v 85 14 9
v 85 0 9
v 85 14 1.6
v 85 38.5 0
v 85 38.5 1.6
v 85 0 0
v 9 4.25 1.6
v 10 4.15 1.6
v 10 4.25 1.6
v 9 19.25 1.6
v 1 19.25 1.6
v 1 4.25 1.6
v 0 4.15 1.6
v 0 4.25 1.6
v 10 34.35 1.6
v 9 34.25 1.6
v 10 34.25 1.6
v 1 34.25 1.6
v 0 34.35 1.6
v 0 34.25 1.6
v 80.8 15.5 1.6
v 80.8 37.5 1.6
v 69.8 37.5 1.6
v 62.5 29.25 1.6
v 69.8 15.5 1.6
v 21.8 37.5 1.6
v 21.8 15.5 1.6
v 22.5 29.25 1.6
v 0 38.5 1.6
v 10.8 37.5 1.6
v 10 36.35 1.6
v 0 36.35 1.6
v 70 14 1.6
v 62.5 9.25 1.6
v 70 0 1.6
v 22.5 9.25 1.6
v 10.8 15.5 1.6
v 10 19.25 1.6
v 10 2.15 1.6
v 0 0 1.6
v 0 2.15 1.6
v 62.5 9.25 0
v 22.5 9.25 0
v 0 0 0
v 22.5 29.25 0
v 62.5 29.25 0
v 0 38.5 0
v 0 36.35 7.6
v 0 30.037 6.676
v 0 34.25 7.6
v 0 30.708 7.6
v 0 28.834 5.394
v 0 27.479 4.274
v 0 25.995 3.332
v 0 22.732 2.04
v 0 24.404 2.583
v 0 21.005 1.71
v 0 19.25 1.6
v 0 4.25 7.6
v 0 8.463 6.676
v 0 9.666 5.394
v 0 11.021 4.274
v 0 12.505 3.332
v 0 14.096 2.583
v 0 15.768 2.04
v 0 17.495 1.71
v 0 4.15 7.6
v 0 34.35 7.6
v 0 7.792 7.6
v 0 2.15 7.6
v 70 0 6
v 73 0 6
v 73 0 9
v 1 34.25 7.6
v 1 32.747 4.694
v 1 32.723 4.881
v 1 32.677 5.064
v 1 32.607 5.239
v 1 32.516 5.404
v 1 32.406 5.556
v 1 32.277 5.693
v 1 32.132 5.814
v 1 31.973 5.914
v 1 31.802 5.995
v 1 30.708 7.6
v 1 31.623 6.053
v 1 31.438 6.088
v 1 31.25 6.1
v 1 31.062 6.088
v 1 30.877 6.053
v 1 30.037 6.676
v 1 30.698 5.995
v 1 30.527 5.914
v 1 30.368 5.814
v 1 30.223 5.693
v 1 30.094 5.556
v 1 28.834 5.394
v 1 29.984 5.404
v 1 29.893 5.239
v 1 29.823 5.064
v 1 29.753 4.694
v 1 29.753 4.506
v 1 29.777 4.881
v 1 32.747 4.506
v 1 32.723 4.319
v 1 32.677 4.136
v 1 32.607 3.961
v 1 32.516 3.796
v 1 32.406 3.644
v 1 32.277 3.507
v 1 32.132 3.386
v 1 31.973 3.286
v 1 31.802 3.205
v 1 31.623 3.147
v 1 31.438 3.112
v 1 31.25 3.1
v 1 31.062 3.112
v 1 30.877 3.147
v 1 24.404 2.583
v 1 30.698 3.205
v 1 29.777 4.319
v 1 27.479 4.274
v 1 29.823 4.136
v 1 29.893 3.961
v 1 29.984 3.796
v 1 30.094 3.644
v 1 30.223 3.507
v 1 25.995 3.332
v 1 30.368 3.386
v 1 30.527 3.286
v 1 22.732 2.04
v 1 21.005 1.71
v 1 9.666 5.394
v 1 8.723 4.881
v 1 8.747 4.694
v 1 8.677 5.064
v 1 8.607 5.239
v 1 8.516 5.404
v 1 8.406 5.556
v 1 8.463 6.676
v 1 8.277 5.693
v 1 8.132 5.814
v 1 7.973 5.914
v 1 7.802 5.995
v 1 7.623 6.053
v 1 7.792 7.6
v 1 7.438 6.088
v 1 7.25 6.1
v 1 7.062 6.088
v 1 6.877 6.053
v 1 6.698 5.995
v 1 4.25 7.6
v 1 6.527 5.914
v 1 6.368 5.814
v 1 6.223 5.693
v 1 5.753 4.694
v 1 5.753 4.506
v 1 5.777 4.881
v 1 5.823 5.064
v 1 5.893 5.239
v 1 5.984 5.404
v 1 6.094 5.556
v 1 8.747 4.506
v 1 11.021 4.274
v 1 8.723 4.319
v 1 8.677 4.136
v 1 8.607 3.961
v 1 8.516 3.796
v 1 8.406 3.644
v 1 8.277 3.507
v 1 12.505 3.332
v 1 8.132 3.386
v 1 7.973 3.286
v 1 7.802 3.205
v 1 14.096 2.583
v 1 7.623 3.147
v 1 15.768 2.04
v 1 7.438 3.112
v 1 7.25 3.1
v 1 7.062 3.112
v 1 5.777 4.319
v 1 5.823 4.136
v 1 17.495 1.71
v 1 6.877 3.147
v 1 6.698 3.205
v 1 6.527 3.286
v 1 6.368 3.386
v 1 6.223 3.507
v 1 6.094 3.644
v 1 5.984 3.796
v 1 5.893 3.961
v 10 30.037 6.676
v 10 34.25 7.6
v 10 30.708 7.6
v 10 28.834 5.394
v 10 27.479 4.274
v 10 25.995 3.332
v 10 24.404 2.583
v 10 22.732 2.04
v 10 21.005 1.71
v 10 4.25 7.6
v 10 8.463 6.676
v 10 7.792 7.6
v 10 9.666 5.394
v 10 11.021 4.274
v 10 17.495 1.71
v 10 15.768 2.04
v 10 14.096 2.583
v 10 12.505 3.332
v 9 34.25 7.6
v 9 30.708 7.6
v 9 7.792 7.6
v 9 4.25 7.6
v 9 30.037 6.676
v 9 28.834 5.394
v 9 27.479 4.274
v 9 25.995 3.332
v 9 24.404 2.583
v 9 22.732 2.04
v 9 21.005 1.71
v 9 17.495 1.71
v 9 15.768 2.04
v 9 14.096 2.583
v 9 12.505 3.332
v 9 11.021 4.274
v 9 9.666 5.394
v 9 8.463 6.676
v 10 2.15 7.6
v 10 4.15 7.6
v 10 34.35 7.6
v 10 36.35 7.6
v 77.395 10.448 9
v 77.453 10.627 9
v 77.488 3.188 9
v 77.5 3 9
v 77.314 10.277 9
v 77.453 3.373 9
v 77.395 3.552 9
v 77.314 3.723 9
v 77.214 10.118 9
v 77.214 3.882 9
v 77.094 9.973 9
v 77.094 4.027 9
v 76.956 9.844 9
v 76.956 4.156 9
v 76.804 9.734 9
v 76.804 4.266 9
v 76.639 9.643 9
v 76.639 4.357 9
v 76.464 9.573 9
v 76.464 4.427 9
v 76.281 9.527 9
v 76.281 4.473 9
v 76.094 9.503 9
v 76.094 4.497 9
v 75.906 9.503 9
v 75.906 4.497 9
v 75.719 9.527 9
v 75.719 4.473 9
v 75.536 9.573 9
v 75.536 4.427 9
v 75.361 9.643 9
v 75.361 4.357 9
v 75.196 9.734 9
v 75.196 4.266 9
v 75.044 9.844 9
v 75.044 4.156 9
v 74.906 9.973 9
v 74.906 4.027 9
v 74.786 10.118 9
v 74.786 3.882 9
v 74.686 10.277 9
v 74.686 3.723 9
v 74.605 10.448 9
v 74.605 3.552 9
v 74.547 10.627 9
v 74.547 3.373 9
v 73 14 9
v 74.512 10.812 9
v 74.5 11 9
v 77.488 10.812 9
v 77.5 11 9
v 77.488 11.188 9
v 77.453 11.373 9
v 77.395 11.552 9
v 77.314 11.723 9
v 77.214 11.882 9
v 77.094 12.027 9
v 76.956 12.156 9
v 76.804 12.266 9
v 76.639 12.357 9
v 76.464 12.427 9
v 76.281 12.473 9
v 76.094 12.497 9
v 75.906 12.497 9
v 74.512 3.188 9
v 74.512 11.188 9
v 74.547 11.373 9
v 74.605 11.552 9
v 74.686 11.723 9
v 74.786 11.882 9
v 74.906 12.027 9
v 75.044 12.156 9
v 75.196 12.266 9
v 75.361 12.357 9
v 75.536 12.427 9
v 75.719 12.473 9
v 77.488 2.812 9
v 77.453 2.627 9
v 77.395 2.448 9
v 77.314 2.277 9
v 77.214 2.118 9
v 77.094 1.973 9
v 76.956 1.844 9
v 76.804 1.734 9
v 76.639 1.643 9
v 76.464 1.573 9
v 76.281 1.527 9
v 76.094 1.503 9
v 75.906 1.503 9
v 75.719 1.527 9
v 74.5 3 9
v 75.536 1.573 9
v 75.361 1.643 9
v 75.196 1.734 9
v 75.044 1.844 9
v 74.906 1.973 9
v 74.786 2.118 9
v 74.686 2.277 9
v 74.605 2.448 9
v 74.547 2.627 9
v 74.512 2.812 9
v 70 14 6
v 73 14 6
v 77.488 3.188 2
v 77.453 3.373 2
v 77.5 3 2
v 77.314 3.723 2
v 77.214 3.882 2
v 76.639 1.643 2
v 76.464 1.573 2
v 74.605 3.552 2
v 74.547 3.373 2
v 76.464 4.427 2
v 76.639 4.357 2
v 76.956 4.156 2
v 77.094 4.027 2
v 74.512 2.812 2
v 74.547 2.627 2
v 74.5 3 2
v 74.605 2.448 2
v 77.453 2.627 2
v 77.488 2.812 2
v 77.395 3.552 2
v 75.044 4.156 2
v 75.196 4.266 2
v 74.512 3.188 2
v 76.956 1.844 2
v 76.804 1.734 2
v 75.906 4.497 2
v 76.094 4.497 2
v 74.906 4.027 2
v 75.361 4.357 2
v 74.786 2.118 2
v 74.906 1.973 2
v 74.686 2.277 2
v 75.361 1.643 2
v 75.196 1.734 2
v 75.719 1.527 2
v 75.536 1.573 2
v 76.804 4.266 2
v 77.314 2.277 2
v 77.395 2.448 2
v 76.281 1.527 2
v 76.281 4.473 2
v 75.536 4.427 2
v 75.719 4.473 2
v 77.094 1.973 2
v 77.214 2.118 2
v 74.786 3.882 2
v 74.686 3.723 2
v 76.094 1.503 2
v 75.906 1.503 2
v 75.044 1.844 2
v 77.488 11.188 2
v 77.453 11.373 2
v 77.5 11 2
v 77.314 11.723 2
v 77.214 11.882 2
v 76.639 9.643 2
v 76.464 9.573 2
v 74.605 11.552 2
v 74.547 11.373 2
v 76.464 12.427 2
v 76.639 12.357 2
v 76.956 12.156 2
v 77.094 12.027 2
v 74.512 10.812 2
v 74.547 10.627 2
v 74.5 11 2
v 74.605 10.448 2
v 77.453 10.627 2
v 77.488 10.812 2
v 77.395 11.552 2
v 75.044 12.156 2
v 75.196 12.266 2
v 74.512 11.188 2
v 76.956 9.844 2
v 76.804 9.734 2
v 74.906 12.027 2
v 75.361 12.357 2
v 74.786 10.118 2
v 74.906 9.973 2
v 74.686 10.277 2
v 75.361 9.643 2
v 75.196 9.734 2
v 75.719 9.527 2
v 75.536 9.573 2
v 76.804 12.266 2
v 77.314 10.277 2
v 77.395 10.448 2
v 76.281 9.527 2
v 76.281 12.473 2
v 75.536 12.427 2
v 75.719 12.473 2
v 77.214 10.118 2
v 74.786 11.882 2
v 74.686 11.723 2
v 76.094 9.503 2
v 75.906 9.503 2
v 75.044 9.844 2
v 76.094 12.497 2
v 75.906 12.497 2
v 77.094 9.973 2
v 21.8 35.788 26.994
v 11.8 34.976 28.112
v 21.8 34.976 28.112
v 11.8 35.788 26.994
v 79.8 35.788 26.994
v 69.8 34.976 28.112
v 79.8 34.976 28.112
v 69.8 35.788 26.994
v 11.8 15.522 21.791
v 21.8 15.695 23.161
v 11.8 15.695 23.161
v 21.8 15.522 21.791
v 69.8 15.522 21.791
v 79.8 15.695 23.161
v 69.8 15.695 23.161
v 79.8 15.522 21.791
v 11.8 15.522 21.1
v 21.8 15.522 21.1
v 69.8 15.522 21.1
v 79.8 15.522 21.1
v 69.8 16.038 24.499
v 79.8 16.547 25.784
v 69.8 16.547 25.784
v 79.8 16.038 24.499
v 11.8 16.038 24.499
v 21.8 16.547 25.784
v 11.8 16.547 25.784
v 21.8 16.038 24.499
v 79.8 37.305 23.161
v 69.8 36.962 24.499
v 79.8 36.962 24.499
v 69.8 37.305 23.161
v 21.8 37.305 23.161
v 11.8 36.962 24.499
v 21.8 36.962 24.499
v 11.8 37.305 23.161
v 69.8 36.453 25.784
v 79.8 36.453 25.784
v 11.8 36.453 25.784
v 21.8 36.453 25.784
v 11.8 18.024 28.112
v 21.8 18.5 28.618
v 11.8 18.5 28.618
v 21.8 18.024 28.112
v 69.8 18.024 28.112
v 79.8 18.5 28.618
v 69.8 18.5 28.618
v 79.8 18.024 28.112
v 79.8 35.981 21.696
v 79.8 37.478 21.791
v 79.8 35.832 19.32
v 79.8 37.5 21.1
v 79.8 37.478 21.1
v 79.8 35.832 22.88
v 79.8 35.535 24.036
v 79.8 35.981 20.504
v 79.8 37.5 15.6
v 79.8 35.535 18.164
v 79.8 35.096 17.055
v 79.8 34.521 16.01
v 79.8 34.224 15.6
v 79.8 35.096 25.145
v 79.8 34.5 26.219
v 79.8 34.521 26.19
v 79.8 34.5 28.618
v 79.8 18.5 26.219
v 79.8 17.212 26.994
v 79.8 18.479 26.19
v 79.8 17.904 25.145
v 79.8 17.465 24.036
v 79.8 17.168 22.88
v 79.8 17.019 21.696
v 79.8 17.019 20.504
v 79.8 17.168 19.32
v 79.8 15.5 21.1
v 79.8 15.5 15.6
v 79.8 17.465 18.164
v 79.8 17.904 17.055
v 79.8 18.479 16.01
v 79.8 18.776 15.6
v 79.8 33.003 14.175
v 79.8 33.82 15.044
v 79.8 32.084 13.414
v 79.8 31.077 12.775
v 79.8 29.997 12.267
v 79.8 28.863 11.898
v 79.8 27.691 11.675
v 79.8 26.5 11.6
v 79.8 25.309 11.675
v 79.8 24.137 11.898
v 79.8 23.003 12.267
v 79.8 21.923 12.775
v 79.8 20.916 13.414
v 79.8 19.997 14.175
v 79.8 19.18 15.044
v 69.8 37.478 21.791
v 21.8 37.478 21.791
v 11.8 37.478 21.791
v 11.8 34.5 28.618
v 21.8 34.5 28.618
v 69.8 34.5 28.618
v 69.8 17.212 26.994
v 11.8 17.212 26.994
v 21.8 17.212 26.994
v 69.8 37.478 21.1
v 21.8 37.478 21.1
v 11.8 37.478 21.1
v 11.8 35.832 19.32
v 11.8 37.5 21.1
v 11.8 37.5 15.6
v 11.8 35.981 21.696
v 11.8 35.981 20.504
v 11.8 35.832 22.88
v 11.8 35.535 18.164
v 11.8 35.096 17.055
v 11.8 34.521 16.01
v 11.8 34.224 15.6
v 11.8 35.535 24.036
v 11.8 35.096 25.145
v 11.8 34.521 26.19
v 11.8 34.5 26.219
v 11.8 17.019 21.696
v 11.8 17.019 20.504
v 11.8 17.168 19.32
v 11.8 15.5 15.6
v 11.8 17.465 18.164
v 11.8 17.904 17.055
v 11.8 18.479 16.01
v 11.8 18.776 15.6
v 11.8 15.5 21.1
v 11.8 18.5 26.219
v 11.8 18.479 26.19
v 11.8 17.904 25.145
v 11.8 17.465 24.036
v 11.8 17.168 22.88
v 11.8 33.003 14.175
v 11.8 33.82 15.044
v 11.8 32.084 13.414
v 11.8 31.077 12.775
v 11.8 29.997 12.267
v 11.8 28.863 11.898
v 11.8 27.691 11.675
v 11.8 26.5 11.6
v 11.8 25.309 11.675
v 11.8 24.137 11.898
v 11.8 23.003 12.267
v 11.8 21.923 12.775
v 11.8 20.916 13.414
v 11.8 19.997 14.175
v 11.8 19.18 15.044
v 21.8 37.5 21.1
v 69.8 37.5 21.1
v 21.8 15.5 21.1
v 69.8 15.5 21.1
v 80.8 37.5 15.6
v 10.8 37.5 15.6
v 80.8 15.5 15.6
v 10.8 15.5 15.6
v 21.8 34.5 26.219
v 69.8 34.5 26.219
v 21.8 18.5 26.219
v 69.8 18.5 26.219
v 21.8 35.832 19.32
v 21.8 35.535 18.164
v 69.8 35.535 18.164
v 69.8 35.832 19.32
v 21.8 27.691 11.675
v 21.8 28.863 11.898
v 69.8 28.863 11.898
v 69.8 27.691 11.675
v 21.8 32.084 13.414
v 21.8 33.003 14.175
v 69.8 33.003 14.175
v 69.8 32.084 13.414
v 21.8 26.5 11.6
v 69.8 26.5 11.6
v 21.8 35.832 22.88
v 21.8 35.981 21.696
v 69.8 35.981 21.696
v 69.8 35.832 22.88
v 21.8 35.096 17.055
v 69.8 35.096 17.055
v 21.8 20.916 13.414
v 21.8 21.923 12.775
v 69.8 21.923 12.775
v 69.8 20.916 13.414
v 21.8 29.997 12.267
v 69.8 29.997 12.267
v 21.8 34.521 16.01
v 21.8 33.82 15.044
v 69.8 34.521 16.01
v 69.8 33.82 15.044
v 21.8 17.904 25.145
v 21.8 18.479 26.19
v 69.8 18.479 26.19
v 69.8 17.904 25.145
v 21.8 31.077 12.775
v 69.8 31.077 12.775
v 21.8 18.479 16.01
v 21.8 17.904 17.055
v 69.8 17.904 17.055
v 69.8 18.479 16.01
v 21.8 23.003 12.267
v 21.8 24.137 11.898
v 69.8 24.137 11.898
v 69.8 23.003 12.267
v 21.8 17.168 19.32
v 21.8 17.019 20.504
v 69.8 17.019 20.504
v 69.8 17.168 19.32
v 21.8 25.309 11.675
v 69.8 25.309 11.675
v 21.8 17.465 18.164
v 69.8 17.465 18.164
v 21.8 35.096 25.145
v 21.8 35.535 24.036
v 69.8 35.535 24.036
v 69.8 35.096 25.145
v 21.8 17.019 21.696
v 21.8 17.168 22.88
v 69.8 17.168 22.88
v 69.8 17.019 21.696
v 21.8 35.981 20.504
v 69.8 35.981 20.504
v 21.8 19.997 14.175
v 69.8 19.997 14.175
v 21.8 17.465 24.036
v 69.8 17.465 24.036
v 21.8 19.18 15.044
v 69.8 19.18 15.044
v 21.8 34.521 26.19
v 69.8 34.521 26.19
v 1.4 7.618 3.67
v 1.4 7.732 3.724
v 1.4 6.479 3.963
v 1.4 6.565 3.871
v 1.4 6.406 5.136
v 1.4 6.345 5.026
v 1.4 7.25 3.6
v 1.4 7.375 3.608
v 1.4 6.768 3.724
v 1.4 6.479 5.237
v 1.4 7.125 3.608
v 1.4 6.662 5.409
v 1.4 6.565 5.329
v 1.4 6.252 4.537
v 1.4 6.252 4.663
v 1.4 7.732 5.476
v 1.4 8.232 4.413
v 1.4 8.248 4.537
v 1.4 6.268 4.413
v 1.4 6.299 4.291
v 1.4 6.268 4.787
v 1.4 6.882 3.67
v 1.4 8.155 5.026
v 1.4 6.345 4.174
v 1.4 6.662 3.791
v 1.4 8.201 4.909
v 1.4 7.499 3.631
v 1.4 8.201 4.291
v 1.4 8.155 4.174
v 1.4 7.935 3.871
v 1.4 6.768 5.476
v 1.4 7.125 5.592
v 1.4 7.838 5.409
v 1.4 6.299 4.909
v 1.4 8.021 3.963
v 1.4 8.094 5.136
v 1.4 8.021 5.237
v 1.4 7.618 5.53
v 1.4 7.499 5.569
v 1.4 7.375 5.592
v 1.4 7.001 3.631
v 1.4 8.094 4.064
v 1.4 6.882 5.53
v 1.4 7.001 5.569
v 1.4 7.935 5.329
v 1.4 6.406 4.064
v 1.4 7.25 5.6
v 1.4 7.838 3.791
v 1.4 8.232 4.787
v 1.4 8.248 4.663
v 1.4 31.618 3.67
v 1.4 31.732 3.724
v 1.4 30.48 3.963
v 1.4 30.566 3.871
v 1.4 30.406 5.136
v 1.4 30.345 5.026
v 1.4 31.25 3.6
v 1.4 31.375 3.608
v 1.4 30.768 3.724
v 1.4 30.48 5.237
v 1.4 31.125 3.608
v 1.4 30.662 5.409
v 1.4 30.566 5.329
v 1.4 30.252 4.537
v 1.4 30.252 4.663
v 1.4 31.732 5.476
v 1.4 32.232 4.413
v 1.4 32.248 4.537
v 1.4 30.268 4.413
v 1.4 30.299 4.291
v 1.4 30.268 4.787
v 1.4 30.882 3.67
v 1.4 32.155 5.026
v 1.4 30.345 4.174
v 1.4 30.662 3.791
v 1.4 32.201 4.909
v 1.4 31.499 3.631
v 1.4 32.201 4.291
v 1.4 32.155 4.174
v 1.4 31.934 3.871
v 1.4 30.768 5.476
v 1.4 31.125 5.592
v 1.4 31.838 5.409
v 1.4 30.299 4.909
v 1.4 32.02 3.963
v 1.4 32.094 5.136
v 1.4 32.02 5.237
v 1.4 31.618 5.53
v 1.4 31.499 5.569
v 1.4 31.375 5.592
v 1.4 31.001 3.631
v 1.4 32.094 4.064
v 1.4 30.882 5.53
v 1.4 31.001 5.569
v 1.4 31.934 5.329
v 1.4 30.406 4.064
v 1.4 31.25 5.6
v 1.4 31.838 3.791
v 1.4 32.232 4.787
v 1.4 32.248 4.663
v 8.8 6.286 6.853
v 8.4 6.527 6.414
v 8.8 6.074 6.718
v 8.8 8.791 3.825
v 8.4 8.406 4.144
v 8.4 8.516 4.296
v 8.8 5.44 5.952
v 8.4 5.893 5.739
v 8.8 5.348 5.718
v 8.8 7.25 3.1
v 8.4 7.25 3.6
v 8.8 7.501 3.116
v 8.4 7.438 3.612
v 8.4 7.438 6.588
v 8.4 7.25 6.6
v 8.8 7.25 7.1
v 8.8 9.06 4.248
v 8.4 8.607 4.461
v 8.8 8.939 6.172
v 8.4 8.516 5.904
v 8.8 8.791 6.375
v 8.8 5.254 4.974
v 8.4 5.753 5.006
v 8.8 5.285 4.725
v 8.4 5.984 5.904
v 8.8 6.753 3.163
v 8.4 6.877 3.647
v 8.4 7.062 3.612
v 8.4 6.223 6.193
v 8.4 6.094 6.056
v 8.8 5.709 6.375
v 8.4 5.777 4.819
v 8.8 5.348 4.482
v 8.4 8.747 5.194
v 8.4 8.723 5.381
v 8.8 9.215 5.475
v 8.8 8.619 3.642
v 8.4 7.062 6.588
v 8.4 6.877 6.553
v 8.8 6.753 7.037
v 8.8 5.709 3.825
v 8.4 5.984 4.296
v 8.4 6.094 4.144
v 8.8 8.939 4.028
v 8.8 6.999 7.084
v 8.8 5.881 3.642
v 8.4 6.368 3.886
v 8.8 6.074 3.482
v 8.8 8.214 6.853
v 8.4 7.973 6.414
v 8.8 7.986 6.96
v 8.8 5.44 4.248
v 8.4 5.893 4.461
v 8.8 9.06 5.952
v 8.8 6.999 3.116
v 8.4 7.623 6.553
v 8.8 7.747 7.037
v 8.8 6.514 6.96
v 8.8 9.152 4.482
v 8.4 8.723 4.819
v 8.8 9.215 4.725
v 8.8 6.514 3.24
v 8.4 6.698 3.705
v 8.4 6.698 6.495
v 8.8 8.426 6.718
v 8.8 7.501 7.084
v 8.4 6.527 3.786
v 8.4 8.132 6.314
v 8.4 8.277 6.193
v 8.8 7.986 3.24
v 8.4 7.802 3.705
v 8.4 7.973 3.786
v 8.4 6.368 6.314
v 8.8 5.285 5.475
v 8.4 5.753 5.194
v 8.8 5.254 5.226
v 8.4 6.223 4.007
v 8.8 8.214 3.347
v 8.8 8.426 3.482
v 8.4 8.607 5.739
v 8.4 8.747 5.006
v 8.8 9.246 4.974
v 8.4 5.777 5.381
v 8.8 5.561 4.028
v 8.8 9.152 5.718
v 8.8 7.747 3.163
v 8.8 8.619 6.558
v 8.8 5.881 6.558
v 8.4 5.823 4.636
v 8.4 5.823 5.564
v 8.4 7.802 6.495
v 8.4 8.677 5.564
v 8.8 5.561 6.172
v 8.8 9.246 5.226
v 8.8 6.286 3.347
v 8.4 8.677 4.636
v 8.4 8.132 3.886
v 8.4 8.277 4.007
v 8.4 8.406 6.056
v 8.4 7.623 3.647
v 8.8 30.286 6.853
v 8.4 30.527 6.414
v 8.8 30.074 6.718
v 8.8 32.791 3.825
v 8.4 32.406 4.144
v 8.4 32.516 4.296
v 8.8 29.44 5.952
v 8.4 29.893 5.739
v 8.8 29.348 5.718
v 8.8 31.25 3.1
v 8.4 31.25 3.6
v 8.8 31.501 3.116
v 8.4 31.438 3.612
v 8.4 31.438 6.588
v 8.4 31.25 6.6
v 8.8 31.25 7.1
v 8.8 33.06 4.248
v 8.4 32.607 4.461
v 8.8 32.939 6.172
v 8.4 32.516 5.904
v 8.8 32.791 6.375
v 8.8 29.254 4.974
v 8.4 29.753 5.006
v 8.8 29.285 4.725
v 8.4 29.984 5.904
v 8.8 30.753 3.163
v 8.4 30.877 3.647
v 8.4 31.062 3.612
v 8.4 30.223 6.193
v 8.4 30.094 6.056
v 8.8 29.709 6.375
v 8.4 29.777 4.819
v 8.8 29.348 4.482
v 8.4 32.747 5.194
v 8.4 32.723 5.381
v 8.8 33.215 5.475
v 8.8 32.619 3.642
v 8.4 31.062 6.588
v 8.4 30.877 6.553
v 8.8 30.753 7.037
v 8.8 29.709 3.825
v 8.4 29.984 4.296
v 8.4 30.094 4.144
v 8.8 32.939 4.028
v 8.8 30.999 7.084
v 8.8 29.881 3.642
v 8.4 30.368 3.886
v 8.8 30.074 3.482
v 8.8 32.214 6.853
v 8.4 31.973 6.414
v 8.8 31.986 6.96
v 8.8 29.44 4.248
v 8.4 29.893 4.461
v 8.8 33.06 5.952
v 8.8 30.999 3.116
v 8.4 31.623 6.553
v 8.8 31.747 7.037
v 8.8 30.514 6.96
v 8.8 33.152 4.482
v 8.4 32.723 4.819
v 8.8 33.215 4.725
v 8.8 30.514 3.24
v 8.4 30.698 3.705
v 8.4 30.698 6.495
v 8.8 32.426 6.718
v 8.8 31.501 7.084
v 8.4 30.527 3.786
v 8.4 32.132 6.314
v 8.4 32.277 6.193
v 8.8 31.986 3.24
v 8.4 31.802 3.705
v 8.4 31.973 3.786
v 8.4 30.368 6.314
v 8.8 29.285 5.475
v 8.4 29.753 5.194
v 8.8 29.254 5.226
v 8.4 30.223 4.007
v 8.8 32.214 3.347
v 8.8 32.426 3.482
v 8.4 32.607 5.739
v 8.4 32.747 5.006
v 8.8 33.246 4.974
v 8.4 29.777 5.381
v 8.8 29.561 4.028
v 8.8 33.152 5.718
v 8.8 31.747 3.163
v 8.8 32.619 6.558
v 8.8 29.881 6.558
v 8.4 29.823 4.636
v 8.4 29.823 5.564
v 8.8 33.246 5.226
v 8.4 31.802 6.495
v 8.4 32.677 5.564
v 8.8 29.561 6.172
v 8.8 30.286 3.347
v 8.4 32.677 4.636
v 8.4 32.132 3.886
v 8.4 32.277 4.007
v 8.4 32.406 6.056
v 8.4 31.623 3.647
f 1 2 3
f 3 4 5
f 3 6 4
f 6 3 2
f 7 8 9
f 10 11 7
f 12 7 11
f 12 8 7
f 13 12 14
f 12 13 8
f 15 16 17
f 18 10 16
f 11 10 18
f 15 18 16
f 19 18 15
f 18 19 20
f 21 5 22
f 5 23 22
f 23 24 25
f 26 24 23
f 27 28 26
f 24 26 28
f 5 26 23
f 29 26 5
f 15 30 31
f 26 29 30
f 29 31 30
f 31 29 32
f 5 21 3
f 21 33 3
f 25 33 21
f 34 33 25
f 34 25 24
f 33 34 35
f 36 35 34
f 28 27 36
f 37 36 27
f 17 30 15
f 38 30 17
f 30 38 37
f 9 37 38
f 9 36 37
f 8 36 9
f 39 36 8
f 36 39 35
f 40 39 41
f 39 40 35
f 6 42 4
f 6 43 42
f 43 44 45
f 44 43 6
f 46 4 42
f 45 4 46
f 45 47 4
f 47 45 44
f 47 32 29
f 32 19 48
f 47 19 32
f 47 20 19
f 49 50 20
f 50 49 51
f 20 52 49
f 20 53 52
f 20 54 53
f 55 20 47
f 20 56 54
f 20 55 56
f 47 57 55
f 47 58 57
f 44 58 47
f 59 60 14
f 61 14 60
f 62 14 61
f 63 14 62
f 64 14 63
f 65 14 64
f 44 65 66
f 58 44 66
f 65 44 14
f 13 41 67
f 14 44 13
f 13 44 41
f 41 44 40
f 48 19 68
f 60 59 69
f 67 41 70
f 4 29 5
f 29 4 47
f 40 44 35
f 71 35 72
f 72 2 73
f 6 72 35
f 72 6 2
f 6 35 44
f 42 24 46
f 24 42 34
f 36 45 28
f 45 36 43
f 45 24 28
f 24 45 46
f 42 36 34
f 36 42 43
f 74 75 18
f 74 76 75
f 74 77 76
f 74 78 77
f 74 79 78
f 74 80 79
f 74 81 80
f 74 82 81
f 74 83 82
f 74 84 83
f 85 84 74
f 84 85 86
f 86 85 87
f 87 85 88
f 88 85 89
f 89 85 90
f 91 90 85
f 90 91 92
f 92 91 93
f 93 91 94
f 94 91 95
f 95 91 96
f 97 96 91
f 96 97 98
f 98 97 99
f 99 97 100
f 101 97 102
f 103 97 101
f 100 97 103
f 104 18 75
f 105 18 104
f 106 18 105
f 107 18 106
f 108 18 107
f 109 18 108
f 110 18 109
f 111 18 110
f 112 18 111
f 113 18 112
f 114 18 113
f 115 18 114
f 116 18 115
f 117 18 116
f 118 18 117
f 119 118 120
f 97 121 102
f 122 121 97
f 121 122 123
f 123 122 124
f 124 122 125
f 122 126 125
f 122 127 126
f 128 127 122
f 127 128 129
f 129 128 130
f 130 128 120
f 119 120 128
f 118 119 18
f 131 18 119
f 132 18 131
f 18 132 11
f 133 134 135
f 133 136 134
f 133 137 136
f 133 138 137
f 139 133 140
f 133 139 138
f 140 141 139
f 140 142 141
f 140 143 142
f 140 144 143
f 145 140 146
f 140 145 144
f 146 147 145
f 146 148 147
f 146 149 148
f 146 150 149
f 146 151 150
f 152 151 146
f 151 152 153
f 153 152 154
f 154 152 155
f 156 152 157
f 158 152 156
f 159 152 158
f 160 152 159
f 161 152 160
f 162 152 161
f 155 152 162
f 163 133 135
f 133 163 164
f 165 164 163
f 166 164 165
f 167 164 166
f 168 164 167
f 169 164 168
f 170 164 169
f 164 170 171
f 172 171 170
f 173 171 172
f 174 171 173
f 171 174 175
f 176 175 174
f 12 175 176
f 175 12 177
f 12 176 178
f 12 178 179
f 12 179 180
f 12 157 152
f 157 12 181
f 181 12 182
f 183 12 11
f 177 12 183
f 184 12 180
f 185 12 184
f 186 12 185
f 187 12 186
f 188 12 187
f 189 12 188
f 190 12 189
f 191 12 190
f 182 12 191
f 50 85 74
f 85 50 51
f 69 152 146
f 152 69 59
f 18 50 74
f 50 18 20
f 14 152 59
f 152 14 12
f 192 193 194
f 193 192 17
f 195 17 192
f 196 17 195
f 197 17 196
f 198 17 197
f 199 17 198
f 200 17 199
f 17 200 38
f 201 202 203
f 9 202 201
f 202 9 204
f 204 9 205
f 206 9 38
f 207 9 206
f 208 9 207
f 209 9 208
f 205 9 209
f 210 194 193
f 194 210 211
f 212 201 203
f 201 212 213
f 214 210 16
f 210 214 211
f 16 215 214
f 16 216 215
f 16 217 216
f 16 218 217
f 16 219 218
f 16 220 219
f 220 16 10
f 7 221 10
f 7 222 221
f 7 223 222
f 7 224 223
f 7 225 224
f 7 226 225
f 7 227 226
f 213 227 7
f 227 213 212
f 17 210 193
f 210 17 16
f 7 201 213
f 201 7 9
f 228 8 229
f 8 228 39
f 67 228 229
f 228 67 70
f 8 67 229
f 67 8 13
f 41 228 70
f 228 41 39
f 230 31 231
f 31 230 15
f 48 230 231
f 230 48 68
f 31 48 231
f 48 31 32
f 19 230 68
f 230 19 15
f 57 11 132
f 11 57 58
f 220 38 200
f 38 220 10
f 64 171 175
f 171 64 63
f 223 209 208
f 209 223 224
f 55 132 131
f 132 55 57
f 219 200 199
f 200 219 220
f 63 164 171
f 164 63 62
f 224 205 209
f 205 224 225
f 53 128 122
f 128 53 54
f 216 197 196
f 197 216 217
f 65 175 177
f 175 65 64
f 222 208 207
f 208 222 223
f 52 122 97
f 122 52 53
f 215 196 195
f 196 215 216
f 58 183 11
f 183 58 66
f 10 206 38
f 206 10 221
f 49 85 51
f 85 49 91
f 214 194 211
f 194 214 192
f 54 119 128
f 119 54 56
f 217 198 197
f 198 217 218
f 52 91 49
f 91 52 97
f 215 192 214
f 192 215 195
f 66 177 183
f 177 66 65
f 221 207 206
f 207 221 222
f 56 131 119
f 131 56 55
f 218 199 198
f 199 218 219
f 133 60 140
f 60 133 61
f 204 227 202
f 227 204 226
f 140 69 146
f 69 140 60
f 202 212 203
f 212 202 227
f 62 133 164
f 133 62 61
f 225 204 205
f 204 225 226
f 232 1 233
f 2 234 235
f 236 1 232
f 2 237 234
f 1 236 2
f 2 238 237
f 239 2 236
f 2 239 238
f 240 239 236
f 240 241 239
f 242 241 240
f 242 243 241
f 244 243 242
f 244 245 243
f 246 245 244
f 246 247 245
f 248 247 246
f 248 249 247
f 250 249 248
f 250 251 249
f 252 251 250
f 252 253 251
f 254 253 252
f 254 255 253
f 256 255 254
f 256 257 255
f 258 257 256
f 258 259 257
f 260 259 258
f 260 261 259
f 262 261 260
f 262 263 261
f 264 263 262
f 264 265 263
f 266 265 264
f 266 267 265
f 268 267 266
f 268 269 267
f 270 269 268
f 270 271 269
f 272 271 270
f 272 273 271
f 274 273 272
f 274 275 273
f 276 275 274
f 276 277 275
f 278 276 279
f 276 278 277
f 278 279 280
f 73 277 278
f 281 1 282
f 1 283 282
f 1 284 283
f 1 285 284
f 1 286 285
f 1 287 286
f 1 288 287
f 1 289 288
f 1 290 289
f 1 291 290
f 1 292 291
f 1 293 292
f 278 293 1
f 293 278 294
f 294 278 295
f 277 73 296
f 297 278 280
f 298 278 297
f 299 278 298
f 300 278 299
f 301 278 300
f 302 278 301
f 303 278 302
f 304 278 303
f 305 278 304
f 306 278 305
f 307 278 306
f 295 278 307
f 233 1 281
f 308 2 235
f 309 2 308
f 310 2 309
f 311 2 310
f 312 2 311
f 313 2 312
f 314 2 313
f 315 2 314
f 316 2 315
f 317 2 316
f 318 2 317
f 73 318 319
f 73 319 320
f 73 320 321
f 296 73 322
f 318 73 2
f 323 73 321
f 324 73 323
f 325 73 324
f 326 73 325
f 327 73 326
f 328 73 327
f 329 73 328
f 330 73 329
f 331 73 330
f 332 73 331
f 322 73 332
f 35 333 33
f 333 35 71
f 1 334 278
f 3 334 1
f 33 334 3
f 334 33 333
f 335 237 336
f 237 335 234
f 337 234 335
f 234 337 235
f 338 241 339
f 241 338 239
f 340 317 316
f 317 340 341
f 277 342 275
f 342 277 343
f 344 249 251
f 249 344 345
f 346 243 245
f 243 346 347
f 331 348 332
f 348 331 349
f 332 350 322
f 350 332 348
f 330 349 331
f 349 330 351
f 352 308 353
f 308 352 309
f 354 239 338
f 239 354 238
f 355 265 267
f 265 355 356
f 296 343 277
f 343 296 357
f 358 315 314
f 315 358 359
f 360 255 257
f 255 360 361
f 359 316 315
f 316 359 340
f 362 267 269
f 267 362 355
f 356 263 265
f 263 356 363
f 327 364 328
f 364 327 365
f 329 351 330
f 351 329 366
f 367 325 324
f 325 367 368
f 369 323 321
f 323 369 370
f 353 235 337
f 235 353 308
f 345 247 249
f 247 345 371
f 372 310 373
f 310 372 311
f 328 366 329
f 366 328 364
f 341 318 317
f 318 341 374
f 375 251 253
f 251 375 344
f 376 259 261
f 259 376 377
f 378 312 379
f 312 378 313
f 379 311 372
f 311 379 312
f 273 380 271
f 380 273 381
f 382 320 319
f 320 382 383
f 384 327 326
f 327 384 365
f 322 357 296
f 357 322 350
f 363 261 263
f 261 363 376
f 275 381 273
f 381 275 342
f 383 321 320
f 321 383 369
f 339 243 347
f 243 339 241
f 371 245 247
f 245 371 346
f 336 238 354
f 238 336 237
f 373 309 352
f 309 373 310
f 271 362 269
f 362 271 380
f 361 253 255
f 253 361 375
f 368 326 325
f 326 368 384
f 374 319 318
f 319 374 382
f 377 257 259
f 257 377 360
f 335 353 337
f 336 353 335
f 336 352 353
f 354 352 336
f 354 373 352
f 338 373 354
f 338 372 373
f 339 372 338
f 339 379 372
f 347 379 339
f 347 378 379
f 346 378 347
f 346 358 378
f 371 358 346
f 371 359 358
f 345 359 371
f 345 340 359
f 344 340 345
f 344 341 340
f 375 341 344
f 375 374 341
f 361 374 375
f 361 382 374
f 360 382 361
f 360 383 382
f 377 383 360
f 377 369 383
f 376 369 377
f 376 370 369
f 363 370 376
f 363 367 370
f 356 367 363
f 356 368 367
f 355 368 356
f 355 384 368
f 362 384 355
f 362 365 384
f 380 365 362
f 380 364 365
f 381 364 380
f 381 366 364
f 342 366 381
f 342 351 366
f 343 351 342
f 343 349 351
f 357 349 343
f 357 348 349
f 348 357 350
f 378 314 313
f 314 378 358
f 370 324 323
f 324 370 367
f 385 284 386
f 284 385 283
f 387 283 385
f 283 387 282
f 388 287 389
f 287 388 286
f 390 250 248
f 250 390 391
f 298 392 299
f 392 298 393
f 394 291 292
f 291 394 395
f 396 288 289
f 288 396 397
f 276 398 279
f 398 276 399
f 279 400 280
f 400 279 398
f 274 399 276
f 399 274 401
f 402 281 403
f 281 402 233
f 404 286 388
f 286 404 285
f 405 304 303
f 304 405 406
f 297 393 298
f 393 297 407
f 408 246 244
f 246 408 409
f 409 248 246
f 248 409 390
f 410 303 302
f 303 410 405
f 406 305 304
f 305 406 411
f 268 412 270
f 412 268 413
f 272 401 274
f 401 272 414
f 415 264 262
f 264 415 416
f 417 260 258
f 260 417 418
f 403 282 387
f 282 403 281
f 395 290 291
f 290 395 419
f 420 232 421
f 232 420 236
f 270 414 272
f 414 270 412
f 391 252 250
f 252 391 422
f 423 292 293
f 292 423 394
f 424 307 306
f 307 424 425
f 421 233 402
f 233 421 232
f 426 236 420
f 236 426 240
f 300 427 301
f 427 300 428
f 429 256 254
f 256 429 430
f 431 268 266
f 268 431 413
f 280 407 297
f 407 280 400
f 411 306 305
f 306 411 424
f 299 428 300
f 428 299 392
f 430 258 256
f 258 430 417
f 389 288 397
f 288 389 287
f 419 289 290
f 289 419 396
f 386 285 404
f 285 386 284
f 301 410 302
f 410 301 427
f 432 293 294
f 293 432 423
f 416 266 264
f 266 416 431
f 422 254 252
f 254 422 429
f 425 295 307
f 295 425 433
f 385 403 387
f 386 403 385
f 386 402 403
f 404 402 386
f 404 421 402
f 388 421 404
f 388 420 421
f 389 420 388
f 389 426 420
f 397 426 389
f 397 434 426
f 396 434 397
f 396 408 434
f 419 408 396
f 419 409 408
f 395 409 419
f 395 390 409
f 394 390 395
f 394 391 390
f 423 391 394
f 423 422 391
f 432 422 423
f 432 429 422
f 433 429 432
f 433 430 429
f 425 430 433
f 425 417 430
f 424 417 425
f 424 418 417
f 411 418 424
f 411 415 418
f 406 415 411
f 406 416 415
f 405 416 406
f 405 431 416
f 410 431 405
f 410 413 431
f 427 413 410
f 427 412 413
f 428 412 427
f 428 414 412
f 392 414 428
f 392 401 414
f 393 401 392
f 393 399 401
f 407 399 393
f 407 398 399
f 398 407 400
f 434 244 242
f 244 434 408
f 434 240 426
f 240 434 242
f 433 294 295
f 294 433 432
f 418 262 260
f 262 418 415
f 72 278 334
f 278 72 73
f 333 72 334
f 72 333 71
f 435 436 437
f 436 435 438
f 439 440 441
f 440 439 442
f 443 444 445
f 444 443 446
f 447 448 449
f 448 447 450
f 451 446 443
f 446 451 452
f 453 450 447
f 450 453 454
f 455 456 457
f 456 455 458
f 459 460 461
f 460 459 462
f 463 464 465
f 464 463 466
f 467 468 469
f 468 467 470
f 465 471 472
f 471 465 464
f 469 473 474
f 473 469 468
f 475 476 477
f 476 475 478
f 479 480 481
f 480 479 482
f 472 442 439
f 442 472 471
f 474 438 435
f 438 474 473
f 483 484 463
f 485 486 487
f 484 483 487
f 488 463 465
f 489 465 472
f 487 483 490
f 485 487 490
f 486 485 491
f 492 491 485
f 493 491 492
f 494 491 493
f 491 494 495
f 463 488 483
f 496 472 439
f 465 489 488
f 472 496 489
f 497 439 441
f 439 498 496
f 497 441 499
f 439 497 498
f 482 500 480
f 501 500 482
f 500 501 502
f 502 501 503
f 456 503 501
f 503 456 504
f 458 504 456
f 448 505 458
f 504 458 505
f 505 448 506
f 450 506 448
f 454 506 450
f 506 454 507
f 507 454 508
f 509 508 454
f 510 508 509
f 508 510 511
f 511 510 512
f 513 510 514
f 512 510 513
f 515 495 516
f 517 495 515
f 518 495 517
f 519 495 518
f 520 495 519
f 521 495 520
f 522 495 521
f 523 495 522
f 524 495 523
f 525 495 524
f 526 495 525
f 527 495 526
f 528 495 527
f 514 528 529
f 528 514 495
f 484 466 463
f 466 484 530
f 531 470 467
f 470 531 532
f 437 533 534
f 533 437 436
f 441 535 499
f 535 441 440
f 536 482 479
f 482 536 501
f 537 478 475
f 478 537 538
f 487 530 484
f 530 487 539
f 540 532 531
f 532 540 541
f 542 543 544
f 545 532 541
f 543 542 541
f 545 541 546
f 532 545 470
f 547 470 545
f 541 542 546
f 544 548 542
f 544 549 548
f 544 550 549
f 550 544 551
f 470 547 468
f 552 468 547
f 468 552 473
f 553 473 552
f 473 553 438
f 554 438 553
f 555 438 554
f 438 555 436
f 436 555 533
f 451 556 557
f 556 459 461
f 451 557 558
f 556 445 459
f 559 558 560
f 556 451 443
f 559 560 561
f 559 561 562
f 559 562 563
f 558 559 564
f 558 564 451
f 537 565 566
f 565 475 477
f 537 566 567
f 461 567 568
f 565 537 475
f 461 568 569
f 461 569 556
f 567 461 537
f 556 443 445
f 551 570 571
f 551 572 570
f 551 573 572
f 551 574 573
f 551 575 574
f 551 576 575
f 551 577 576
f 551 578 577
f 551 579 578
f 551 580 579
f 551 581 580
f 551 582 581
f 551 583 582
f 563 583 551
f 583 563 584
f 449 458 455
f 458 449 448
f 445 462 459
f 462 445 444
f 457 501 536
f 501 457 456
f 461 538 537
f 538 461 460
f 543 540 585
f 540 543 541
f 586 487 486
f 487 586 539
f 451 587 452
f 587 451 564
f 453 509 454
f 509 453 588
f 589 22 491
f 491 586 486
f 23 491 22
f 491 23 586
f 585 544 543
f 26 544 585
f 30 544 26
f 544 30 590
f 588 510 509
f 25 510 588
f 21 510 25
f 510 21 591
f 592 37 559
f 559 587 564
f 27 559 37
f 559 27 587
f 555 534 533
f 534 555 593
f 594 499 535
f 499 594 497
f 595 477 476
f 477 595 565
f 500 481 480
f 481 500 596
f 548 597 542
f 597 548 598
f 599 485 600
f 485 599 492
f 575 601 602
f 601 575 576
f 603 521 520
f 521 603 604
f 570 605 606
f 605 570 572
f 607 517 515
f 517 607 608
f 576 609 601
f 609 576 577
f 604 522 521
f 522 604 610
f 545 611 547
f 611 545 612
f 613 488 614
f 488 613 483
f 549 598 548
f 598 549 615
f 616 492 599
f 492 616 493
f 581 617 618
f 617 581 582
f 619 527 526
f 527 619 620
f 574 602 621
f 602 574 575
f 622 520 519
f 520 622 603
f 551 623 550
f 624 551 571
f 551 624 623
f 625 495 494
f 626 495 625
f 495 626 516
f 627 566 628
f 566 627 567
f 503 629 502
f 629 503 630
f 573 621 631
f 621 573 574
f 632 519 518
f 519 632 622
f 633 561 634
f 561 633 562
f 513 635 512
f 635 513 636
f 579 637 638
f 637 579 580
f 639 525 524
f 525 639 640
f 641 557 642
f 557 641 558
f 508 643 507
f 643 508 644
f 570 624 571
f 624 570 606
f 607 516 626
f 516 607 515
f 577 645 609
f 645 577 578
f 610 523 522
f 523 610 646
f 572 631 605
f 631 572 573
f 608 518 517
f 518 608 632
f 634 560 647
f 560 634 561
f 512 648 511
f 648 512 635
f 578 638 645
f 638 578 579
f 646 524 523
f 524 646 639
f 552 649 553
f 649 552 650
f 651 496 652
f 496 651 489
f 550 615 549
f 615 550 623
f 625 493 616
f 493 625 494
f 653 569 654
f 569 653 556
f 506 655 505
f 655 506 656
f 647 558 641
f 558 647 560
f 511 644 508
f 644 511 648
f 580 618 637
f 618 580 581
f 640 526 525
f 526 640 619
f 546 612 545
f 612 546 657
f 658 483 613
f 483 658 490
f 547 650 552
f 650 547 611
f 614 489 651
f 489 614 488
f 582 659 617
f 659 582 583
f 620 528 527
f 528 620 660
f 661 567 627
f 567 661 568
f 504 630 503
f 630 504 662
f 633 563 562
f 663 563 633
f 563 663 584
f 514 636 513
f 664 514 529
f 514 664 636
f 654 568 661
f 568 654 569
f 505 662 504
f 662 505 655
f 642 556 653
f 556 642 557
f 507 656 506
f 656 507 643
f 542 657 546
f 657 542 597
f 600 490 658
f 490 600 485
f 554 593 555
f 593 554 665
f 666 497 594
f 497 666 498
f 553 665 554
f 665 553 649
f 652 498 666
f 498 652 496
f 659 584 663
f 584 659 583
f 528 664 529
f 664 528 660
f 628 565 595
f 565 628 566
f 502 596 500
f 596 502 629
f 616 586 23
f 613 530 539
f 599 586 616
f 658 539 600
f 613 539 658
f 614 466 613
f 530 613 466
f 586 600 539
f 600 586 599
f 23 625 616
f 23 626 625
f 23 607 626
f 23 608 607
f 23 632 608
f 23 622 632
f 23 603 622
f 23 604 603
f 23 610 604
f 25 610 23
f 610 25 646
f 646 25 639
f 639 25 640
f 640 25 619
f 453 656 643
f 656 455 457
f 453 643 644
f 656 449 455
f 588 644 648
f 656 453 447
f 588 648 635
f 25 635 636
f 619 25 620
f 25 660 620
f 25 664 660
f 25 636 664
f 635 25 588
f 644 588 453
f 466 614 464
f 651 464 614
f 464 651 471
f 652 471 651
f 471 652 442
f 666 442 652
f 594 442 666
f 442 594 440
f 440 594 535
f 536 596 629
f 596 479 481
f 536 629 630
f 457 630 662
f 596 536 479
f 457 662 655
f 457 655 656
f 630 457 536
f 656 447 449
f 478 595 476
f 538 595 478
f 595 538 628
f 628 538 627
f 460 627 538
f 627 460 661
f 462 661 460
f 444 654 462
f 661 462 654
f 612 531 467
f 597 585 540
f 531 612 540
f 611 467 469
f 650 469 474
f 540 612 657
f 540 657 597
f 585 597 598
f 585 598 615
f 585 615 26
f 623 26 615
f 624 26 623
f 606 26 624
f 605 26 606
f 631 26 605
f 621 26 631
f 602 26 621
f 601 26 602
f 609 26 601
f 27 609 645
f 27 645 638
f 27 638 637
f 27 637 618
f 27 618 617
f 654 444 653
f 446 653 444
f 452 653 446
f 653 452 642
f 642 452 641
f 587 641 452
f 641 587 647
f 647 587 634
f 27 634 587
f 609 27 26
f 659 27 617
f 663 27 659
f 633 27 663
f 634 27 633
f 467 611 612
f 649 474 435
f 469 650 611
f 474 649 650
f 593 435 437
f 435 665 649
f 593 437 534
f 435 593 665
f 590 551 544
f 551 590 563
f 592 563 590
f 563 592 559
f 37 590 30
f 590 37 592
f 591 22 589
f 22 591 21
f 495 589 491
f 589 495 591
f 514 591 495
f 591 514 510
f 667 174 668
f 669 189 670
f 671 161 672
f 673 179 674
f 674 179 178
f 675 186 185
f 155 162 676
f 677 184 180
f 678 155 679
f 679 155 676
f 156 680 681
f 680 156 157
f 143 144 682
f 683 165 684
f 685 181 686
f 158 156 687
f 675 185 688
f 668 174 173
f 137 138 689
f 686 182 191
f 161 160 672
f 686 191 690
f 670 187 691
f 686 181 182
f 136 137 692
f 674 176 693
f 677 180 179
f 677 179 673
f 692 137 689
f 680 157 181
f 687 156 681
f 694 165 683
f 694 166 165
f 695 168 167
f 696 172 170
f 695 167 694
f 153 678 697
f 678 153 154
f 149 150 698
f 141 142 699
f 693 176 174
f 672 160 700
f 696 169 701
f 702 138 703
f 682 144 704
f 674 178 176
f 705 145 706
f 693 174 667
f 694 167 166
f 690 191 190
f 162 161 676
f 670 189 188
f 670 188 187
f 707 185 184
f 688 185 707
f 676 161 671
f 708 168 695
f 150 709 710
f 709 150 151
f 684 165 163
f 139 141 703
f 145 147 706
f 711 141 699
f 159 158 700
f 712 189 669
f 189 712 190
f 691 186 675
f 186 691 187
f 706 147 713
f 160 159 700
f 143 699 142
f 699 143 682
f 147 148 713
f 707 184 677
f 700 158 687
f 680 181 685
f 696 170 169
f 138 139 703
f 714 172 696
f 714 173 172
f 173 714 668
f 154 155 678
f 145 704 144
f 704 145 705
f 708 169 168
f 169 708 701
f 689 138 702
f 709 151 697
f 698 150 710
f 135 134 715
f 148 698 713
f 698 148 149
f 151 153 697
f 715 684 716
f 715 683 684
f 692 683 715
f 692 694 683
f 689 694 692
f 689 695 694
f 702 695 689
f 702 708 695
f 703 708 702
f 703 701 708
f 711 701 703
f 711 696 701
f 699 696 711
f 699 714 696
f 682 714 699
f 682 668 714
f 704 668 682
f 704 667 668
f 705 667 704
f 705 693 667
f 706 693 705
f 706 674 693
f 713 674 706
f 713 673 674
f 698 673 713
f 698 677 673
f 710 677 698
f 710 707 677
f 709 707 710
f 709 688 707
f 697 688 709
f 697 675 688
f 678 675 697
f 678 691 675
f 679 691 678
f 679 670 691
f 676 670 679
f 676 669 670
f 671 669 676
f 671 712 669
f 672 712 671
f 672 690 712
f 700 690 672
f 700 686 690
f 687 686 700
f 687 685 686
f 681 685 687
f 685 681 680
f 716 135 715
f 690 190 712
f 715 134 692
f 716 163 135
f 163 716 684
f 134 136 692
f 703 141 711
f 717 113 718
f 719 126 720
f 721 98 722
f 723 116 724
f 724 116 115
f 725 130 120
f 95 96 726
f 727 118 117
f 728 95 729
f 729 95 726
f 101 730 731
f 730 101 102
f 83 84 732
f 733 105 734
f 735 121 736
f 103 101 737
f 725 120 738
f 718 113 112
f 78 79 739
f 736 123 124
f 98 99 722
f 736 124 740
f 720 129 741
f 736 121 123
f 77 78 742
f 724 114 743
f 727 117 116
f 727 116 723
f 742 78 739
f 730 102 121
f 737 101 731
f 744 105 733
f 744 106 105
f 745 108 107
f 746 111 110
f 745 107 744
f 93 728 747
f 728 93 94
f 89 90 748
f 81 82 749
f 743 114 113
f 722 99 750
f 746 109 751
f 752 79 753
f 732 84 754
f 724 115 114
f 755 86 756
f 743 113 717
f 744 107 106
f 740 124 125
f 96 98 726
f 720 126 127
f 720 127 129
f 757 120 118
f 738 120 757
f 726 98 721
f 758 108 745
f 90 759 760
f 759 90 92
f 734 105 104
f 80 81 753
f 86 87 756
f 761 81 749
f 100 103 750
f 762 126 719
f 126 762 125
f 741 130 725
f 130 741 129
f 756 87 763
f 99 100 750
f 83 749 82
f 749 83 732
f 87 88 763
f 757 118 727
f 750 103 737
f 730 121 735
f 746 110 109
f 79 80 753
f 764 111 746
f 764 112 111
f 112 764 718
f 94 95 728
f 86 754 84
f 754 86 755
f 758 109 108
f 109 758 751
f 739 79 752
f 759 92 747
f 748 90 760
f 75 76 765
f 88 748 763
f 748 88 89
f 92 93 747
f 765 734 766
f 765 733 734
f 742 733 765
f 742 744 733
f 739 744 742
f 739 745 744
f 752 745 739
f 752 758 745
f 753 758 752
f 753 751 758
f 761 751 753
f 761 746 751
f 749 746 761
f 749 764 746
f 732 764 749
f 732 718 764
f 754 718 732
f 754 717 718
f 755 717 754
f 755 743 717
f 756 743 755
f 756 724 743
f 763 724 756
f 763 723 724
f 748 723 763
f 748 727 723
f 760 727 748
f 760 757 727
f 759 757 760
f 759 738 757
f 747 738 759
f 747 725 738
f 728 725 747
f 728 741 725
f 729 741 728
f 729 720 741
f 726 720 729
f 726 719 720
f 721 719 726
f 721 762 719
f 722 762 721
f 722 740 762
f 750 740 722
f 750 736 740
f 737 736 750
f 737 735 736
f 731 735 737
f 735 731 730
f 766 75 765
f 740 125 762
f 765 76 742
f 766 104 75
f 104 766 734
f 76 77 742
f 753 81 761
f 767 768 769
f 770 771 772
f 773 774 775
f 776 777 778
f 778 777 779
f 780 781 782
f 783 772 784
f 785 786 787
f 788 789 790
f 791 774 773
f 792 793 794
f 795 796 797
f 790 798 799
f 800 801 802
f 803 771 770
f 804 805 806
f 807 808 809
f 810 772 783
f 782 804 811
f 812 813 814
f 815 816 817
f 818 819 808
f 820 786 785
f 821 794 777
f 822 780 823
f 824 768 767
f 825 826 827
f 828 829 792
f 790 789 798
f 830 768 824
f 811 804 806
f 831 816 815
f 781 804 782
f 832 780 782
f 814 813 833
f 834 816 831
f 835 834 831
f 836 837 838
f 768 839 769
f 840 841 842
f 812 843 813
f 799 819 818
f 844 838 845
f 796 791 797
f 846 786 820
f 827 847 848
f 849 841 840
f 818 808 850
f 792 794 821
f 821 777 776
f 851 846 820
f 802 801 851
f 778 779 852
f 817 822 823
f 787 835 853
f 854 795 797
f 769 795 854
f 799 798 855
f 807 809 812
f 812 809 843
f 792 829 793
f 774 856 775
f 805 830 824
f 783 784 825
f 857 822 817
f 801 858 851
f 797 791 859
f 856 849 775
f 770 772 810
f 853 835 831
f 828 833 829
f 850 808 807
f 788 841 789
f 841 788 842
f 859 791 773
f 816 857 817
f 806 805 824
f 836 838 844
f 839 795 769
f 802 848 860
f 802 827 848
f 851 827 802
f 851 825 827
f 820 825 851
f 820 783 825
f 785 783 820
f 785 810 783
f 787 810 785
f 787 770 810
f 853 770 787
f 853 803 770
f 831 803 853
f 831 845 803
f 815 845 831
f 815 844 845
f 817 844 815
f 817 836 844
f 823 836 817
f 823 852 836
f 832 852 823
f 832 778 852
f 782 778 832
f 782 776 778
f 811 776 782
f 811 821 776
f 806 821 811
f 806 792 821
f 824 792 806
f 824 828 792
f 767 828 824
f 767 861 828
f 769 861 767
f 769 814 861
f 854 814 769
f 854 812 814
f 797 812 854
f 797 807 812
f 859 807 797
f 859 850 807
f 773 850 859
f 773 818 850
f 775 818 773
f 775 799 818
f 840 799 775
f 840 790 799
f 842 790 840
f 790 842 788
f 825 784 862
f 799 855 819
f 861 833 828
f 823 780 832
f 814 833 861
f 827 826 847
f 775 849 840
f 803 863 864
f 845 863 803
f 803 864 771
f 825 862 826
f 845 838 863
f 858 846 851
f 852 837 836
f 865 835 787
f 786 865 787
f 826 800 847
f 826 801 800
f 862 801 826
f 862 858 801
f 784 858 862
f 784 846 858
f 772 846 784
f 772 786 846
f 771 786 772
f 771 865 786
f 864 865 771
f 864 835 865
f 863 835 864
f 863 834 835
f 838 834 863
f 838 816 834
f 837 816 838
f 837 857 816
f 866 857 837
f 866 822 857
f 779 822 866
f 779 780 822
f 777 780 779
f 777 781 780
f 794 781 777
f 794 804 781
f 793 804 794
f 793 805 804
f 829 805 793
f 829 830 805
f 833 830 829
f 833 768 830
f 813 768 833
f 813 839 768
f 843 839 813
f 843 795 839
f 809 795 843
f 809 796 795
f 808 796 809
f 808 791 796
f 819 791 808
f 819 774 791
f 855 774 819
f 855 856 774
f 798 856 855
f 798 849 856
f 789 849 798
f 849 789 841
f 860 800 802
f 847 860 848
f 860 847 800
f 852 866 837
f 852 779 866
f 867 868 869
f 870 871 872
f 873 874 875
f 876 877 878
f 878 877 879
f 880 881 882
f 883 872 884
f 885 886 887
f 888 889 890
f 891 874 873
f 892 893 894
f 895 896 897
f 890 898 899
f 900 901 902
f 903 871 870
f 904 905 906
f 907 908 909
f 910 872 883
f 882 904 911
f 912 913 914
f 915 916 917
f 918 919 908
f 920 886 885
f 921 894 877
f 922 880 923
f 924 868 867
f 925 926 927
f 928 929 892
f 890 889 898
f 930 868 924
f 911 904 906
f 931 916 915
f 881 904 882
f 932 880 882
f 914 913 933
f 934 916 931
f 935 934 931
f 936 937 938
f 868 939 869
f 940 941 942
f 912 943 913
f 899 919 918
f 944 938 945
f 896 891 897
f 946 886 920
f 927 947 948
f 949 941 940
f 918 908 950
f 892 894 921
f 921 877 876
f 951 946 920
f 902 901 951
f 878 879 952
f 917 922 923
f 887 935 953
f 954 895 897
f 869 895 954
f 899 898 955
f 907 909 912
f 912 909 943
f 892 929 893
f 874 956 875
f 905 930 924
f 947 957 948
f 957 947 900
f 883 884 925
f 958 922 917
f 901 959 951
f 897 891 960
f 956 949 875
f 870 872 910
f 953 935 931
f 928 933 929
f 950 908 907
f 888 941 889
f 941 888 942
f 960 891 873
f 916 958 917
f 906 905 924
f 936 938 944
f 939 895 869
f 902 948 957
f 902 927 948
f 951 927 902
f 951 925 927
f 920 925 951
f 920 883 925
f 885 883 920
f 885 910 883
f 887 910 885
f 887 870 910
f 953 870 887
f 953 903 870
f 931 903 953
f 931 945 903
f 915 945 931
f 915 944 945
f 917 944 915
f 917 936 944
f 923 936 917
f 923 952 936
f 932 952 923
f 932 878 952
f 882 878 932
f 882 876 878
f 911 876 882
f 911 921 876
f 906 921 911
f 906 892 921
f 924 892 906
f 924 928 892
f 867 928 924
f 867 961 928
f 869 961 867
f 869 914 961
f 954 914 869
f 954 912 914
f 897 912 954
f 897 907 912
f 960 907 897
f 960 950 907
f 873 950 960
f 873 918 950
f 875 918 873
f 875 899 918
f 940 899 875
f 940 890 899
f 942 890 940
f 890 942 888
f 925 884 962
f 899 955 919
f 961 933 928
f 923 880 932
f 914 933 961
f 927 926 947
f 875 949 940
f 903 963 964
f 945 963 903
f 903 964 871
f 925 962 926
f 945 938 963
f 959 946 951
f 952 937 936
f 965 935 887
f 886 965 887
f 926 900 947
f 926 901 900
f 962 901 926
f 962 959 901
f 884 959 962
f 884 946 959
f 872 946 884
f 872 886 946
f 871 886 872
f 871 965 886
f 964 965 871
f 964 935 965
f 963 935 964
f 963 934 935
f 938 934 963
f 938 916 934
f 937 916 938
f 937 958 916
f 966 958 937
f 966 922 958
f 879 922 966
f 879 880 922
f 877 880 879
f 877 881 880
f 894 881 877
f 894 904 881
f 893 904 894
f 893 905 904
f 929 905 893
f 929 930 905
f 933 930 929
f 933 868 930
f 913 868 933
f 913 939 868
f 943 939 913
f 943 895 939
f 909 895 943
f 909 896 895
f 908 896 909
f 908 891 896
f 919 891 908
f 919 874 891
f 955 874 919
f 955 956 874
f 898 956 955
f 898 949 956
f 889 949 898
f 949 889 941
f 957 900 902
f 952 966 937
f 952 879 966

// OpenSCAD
$fn = 50;

length = 85;
width = 38.5;
height = 1.6;

lipo_height = 68.0;
lipo_diameter = 19.0;
lipo_lock = 3.0;

lock_socket = 2.0 + 8.0;

// transmitter
module HMMODRPIPCB(){

     transmitter_height = 9.0;
     transmitter_width = 16.6;
     transmitter_length = 39.0;
     transmitter_antenna_length = 58;
     transmitter_antenna_diameter = 2;

     color("#ff0000"){
          cube([transmitter_width, transmitter_length, transmitter_height], center=false);
          translate([transmitter_width, transmitter_length-(transmitter_antenna_diameter/2), (transmitter_height/2)]) {
               rotate(a=90, v=[0,1,0]) {
                    cylinder(transmitter_antenna_length, d=transmitter_antenna_diameter, center=false);
               }
          }
     }
}

/* translate([10.5+12, 0, height]) { */
/*      HMMODRPIPCB(); */
/* } */

// base
difference(){
     // plate
     cube([length, width, height], center=false);
     // intake
     translate([(length/2) - (40/2),(width/2) - (20/2),-1]) {
          cube([40, 20, height+2], center=false);
     }
}

// lipo lock
translate([3.3,7,0]) {

     difference() {

          // lipo holder
          union() {
               translate([(length-lipo_height)/2, (width-lipo_diameter), height+(lipo_diameter/2)+lock_socket]) {
                    rotate(a=90, v=[0,1,0]) {
                         cylinder(lipo_height, r=(lipo_diameter/2)+(lipo_lock/2), true);
                    }
               }
               translate([(length-lipo_height)/2, (width-lipo_diameter-(lipo_diameter+lipo_lock)/2), height]) {
                    cube([lipo_height, lipo_diameter+lipo_lock, (lipo_diameter/2)+lock_socket], center=false);
               }
          }

          // lipo cutout
          union() {
               // cutout top
               translate([(length-lipo_height-2)/2, (width-(lipo_diameter+lipo_lock)-5), height+20]) {
                    cube([lipo_height+lock_socket, 16, (lipo_diameter+lipo_lock)+1], center=false);
               }
               // cutout lipo
               translate([(length-lipo_height-lock_socket)/2, (width-lipo_diameter), height+(lipo_diameter/2)+lock_socket]) {
                    rotate(a=90, v=[0,1,0]) {
                         cylinder(lipo_height+lock_socket, r=lipo_diameter/2, true);
                    }
               }
               // cutout center
               translate([(length-lipo_height)/2+10, (width-lipo_diameter-((lipo_diameter+lipo_lock)/2)-1), height]) {
                    cube([lipo_height-lipo_diameter-1, lipo_diameter+lipo_lock+1, (lipo_diameter+lipo_lock)+lock_socket], center=false);
               }
          }

     }

     // bottom lipo lock
     translate([(length-lipo_height-2)/2, (width-19-11), height]) {
          cube([1, 22, 14], center=false); //lipo_socket + 3?
     }

     // top lipo lock
     translate([length-(length-lipo_height-2)/2-1, (width-19-11), height]) {
          cube([1, 22, 14], center=false); //lipo_socket + 3?
     }

}

// fan lock

difference() {
     union () {
          translate([0,(width-30)/2,height]) {
               /* rotate(a=90, v=[0,0,1]){ */
                    cube([1.0, 30.0, 6.0], center=false);

               /* } */
          }
          translate([7.8+1.0+0.2,(width-30)/2,height]) {
               /* rotate(a=90, v=[0,0,1]){ */
                    cube([1.0, 30.0, 6.0], center=false);
               /* } */
          }
          translate([0,(width-30)/2-2.0-0.1,height]) {
               cube([1.0+1.0+7.8+0.2, 2.0, 6.0], center=false);
          }
          translate([0,width-((width-30)/2)+0.1,height]) {
               cube([1.0+1.0+7.8+0.2, 2.0, 6.0], center=false);
          }
     }
     translate([0,width/2,height+28/2]) {
          rotate(a=90, v=[0,1,0]){
               cylinder(7.8+2.0+2.0, d=28, center=false);
          }
     }
}

// fan clips
translate([1.0,(width-30)/2+2.0+1.0,height+1.5+1.5]) {
     rotate(a=90, v=[0,1,0]){
          cylinder(0.4, d1=3, d2=2, center=false);
     }
}
translate([1.0,width-((width-30)/2)-2.0-1.0,height+1.5+1.5]) {
     rotate(a=90, v=[0,1,0]){
          cylinder(0.4, d1=3, d2=2, center=false);
     }
}
translate([1.0+7.8-0.2-0.2,(width-30)/2+2.0+1.0,height+2+1.5]) {
     rotate(a=90, v=[0,1,0]){
          cylinder(0.4, d1=3, d2=4, center=false);
     }
}
translate([1.0+7.8-0.2-0.2,width-((width-30)/2)-2-1.0,height+2+1.5]) {
     rotate(a=90, v=[0,1,0]){
          cylinder(0.4, d1=3, d2=4, center=false);
     }
}

// power mount
translate([length-15.0,0,0]) {
     difference() {
          cube([15.0, 14.0, 9.0], center=false);
          translate([6,3,2]) {
               cylinder(7.5, d=3.0, center=false);
          }
          translate([6,11,2]) {
               cylinder(7.5, d=3.0, center=false);
          }
          translate([0,0,6]) {
               cube([3.0, 14.0, 3.0], center=false);
          }
     }
}

// cable management
w = 2.0;
l = 40.0;
h = 7.0;
hh = 1.5;
hs = 8.0;

/* translate([(length/2)-(l/2),(width/2)-10-w,height]) { */
/*      difference() { */
/*           cube([l, w, h], center=false); */
/*           translate([hs,0,4.0]) { */
/*                cube([3.0, w, hh], center=false); */
/*           } */
/*           translate([l-3.0-hs,0,4.0]) { */
/*                cube([3.0, w, hh], center=false); */
/*           } */
/*           translate([hs,0,1.0]) { */
/*                cube([3.0, w, hh], center=false); */
/*           } */
/*           translate([l-3.0-hs,0,1.0]) { */
/*                cube([3.0, w, hh], center=false); */
/*           } */
/*      } */
/* } */
